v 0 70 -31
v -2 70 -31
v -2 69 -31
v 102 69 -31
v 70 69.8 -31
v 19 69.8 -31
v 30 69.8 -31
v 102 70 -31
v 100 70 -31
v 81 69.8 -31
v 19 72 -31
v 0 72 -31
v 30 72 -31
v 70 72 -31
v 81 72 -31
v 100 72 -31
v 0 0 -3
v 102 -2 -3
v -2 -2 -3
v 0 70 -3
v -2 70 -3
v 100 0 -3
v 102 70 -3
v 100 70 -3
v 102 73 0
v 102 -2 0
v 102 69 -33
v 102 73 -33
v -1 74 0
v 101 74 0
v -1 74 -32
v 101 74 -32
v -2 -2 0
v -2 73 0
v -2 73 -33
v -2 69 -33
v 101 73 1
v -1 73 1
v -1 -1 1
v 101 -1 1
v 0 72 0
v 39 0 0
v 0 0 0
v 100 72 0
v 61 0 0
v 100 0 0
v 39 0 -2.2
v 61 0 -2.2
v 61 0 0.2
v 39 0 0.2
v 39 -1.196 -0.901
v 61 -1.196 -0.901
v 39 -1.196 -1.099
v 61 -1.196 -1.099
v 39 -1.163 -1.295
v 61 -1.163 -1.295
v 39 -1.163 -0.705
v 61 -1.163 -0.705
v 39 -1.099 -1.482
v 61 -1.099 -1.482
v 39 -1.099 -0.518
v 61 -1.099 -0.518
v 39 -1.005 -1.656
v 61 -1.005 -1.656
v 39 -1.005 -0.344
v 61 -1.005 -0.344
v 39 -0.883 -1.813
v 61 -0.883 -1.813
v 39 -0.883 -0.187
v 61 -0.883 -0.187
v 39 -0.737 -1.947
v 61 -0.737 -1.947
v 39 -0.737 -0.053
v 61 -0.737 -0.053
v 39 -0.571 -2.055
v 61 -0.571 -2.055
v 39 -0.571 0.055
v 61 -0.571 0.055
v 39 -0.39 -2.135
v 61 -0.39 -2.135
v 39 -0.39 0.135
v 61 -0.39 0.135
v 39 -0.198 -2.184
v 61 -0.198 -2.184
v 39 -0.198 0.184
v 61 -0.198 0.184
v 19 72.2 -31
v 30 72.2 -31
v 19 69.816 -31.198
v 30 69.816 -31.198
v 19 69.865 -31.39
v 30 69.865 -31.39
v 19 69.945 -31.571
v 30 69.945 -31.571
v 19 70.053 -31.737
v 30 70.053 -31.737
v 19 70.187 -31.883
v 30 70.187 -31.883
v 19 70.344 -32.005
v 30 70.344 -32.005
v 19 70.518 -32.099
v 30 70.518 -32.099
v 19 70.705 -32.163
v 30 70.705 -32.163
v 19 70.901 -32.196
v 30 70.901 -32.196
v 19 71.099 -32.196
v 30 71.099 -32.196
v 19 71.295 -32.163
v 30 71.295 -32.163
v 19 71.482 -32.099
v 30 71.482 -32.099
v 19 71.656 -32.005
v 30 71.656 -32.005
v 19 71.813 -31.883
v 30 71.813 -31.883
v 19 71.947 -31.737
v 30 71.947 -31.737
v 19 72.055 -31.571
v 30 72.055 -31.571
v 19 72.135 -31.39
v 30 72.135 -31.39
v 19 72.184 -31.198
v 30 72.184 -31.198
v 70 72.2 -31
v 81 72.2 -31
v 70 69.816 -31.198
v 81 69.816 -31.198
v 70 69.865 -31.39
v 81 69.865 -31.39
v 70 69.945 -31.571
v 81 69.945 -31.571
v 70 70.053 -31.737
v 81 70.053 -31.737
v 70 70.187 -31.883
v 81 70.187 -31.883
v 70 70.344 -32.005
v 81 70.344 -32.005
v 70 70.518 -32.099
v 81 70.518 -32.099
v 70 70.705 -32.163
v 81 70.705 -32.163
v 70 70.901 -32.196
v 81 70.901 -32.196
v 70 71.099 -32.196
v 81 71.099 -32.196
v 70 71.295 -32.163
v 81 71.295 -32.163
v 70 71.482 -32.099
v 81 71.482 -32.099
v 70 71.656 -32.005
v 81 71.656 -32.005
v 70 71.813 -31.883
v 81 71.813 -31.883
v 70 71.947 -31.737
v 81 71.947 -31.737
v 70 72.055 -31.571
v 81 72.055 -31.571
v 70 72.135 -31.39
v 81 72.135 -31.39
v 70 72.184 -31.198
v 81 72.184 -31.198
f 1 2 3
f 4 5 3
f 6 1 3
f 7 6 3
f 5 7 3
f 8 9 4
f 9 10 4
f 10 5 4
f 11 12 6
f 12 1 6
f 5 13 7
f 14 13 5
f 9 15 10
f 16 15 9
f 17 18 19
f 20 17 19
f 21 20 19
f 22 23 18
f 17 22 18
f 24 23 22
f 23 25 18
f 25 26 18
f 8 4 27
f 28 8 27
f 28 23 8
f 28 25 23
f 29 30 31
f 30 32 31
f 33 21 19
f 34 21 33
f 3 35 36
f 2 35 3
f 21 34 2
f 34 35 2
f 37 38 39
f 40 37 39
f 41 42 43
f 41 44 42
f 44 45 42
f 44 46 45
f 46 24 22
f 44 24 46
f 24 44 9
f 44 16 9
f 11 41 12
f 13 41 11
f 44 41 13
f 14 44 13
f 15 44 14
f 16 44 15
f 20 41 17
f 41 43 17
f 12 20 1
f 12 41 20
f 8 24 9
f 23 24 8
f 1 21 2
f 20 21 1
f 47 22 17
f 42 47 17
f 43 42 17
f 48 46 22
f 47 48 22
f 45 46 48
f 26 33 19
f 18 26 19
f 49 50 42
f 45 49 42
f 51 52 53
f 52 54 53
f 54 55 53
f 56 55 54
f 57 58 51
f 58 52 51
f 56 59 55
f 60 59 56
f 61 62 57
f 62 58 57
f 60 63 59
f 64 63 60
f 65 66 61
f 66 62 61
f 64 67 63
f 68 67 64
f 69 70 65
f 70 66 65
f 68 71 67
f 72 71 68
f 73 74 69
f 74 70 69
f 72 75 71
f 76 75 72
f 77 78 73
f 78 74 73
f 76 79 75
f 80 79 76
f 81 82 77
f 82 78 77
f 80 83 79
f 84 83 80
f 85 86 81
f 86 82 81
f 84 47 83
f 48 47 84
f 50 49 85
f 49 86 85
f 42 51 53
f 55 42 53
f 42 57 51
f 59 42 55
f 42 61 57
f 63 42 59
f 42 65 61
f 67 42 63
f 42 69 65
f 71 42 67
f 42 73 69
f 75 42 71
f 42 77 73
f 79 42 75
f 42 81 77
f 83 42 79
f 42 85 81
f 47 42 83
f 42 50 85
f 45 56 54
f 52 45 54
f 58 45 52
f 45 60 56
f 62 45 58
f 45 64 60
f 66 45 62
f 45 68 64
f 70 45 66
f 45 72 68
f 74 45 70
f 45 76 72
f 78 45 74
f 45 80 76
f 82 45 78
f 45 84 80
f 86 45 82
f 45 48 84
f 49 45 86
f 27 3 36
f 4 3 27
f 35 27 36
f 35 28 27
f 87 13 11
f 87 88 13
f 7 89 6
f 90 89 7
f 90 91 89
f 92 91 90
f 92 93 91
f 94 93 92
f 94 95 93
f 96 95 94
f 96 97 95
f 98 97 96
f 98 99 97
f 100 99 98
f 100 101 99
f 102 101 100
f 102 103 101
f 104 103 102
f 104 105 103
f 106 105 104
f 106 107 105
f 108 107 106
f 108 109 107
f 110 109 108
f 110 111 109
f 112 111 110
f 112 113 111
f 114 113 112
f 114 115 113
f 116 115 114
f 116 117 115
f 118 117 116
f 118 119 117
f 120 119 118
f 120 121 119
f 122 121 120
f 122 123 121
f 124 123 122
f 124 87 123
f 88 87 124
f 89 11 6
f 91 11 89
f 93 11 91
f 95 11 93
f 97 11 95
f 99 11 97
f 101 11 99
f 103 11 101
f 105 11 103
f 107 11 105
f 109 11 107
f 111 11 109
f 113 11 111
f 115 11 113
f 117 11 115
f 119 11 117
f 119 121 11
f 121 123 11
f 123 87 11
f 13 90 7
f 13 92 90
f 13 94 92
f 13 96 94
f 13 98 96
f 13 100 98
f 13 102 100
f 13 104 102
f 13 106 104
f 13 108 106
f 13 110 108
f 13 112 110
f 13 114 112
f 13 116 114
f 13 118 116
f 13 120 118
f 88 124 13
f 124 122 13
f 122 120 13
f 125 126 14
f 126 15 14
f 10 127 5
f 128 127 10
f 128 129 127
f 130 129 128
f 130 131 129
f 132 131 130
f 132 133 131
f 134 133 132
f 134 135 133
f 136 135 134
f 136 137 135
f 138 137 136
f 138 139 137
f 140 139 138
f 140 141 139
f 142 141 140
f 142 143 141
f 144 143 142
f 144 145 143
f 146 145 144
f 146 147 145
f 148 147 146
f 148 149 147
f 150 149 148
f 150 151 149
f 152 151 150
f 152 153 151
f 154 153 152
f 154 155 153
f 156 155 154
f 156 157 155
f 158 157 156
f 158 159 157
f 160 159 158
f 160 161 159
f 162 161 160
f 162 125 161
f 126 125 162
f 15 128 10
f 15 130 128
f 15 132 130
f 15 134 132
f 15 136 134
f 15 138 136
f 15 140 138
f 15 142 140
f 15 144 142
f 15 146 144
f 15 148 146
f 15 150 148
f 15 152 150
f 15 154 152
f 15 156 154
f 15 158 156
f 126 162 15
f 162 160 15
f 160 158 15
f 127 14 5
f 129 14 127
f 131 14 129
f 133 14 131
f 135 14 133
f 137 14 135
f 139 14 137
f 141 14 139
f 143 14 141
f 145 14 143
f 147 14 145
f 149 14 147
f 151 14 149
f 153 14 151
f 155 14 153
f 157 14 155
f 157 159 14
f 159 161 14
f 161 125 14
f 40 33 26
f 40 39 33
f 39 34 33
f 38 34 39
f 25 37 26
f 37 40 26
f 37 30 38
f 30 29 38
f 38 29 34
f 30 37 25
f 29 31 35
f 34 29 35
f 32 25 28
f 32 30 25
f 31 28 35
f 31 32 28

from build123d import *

# Parameters (mm, degrees)
SKETCH1_W               = 104
SKETCH1_H               = 74
BOSS_EXTRUDE1_DEPTH     = 1
BOSS_EXTRUDE2_DEPTH     = 3
BOSS_EXTRUDE3_DEPTH     = 28
SKETCH3_W               = 104
SKETCH3_H               = 4
BOSS_EXTRUDE4_DEPTH     = 2
CUT_EXTRUDE1_DEPTH      = 11
CUT_EXTRUDE1_DEPTH_BACK = 11
CUT_EXTRUDE1_START      = -52
SKETCH5_W               = 104
SKETCH5_H               = 5
BOSS_EXTRUDE6_DEPTH     = 2
CUT_EXTRUDE2_START      = -32
CUT_EXTRUDE2_DEPTH      = 11
CUT_EXTRUDE3_START      = -83
CUT_EXTRUDE3_DEPTH      = 11
CHAMFER2_SIZE           = 1


with BuildPart() as part:
    # Sketch1 → Boss-Extrude1 (new body)
    with BuildSketch(Plane.XY):
        with Locations((50, 37)):
            Rectangle(SKETCH1_W, SKETCH1_H)
    extrude(amount=BOSS_EXTRUDE1_DEPTH)

    # Sketch1<3> → Boss-Extrude2 (add)
    with BuildSketch(Plane.XY):
        Polygon((-2, 74), (-2, 0), (0, 0), (0, 72), (100, 72), (100, 0), (102, 0), (102, 74), align=None)
    extrude(amount=-BOSS_EXTRUDE2_DEPTH)

    # Sketch2 → Boss-Extrude3 (add)
    with BuildSketch(Plane(origin=(0, 0, -3), x_dir=(-1, 0, 0), z_dir=(0, 0, -1))):
        Polygon((-102, 74), (2, 74), (2, 70), (0, 70), (0, 72), (-100, 72), (-100, 70), (-102, 70), align=None)
    extrude(amount=BOSS_EXTRUDE3_DEPTH)

    # Sketch3 → Boss-Extrude4 (add)
    with BuildSketch(Plane.XZ):
        with Locations((50, -1)):
            Rectangle(SKETCH3_W, SKETCH3_H)
    extrude(amount=BOSS_EXTRUDE4_DEPTH)

    # Sketch4 → Cut-Extrude1 (cut, two sides: drawn at the far end of the back side and taken through both)
    with BuildSketch(Plane.ZY.offset(2).offset(CUT_EXTRUDE1_START - CUT_EXTRUDE1_DEPTH_BACK)):
        with BuildLine():
            Line((0.2, 0), (-2.2, 0))
            ThreePointArc((-2.2, 0), (-1, -1.2), (0.2, 0))
        make_face()
    extrude(amount=CUT_EXTRUDE1_DEPTH + CUT_EXTRUDE1_DEPTH_BACK, mode=Mode.SUBTRACT)

    # Sketch5 → Boss-Extrude6 (add)
    with BuildSketch(Plane(origin=(0, 0, -31), x_dir=(-1, 0, 0), z_dir=(0, 0, -1))):
        with Locations((-50, 71.5)):
            Rectangle(SKETCH5_W, SKETCH5_H)
    extrude(amount=BOSS_EXTRUDE6_DEPTH)

    # Sketch6 → Cut-Extrude2 (cut)
    with BuildSketch(Plane.ZY.offset(2).offset(CUT_EXTRUDE2_START)):
        with BuildLine():
            ThreePointArc((-31, 72.2), (-32.2, 71), (-31, 69.8))
            Line((-31, 69.8), (-31, 72.2))
        make_face()
    extrude(amount=CUT_EXTRUDE2_DEPTH, mode=Mode.SUBTRACT)

    # Sketch6<3> → Cut-Extrude3 (cut)
    with BuildSketch(Plane.ZY.offset(2).offset(CUT_EXTRUDE3_START)):
        with BuildLine():
            ThreePointArc((-31, 72.2), (-32.2, 71), (-31, 69.8))
            Line((-31, 69.8), (-31, 72.2))
        make_face()
    extrude(amount=CUT_EXTRUDE3_DEPTH, mode=Mode.SUBTRACT)

    # Chamfer2
    chamfer2_edges = [part.edges().sort_by_distance(p)[0] for p in [
        (102, 36, 1),
        (50, 74, 1),
        (-2, 36, 1),
        (50, -2, 1),
        (50, 74, -33),
        (-2, 74, -16),
        (102, 74, -16),
    ]]
    chamfer(chamfer2_edges, length=CHAMFER2_SIZE)


solid = part.part
